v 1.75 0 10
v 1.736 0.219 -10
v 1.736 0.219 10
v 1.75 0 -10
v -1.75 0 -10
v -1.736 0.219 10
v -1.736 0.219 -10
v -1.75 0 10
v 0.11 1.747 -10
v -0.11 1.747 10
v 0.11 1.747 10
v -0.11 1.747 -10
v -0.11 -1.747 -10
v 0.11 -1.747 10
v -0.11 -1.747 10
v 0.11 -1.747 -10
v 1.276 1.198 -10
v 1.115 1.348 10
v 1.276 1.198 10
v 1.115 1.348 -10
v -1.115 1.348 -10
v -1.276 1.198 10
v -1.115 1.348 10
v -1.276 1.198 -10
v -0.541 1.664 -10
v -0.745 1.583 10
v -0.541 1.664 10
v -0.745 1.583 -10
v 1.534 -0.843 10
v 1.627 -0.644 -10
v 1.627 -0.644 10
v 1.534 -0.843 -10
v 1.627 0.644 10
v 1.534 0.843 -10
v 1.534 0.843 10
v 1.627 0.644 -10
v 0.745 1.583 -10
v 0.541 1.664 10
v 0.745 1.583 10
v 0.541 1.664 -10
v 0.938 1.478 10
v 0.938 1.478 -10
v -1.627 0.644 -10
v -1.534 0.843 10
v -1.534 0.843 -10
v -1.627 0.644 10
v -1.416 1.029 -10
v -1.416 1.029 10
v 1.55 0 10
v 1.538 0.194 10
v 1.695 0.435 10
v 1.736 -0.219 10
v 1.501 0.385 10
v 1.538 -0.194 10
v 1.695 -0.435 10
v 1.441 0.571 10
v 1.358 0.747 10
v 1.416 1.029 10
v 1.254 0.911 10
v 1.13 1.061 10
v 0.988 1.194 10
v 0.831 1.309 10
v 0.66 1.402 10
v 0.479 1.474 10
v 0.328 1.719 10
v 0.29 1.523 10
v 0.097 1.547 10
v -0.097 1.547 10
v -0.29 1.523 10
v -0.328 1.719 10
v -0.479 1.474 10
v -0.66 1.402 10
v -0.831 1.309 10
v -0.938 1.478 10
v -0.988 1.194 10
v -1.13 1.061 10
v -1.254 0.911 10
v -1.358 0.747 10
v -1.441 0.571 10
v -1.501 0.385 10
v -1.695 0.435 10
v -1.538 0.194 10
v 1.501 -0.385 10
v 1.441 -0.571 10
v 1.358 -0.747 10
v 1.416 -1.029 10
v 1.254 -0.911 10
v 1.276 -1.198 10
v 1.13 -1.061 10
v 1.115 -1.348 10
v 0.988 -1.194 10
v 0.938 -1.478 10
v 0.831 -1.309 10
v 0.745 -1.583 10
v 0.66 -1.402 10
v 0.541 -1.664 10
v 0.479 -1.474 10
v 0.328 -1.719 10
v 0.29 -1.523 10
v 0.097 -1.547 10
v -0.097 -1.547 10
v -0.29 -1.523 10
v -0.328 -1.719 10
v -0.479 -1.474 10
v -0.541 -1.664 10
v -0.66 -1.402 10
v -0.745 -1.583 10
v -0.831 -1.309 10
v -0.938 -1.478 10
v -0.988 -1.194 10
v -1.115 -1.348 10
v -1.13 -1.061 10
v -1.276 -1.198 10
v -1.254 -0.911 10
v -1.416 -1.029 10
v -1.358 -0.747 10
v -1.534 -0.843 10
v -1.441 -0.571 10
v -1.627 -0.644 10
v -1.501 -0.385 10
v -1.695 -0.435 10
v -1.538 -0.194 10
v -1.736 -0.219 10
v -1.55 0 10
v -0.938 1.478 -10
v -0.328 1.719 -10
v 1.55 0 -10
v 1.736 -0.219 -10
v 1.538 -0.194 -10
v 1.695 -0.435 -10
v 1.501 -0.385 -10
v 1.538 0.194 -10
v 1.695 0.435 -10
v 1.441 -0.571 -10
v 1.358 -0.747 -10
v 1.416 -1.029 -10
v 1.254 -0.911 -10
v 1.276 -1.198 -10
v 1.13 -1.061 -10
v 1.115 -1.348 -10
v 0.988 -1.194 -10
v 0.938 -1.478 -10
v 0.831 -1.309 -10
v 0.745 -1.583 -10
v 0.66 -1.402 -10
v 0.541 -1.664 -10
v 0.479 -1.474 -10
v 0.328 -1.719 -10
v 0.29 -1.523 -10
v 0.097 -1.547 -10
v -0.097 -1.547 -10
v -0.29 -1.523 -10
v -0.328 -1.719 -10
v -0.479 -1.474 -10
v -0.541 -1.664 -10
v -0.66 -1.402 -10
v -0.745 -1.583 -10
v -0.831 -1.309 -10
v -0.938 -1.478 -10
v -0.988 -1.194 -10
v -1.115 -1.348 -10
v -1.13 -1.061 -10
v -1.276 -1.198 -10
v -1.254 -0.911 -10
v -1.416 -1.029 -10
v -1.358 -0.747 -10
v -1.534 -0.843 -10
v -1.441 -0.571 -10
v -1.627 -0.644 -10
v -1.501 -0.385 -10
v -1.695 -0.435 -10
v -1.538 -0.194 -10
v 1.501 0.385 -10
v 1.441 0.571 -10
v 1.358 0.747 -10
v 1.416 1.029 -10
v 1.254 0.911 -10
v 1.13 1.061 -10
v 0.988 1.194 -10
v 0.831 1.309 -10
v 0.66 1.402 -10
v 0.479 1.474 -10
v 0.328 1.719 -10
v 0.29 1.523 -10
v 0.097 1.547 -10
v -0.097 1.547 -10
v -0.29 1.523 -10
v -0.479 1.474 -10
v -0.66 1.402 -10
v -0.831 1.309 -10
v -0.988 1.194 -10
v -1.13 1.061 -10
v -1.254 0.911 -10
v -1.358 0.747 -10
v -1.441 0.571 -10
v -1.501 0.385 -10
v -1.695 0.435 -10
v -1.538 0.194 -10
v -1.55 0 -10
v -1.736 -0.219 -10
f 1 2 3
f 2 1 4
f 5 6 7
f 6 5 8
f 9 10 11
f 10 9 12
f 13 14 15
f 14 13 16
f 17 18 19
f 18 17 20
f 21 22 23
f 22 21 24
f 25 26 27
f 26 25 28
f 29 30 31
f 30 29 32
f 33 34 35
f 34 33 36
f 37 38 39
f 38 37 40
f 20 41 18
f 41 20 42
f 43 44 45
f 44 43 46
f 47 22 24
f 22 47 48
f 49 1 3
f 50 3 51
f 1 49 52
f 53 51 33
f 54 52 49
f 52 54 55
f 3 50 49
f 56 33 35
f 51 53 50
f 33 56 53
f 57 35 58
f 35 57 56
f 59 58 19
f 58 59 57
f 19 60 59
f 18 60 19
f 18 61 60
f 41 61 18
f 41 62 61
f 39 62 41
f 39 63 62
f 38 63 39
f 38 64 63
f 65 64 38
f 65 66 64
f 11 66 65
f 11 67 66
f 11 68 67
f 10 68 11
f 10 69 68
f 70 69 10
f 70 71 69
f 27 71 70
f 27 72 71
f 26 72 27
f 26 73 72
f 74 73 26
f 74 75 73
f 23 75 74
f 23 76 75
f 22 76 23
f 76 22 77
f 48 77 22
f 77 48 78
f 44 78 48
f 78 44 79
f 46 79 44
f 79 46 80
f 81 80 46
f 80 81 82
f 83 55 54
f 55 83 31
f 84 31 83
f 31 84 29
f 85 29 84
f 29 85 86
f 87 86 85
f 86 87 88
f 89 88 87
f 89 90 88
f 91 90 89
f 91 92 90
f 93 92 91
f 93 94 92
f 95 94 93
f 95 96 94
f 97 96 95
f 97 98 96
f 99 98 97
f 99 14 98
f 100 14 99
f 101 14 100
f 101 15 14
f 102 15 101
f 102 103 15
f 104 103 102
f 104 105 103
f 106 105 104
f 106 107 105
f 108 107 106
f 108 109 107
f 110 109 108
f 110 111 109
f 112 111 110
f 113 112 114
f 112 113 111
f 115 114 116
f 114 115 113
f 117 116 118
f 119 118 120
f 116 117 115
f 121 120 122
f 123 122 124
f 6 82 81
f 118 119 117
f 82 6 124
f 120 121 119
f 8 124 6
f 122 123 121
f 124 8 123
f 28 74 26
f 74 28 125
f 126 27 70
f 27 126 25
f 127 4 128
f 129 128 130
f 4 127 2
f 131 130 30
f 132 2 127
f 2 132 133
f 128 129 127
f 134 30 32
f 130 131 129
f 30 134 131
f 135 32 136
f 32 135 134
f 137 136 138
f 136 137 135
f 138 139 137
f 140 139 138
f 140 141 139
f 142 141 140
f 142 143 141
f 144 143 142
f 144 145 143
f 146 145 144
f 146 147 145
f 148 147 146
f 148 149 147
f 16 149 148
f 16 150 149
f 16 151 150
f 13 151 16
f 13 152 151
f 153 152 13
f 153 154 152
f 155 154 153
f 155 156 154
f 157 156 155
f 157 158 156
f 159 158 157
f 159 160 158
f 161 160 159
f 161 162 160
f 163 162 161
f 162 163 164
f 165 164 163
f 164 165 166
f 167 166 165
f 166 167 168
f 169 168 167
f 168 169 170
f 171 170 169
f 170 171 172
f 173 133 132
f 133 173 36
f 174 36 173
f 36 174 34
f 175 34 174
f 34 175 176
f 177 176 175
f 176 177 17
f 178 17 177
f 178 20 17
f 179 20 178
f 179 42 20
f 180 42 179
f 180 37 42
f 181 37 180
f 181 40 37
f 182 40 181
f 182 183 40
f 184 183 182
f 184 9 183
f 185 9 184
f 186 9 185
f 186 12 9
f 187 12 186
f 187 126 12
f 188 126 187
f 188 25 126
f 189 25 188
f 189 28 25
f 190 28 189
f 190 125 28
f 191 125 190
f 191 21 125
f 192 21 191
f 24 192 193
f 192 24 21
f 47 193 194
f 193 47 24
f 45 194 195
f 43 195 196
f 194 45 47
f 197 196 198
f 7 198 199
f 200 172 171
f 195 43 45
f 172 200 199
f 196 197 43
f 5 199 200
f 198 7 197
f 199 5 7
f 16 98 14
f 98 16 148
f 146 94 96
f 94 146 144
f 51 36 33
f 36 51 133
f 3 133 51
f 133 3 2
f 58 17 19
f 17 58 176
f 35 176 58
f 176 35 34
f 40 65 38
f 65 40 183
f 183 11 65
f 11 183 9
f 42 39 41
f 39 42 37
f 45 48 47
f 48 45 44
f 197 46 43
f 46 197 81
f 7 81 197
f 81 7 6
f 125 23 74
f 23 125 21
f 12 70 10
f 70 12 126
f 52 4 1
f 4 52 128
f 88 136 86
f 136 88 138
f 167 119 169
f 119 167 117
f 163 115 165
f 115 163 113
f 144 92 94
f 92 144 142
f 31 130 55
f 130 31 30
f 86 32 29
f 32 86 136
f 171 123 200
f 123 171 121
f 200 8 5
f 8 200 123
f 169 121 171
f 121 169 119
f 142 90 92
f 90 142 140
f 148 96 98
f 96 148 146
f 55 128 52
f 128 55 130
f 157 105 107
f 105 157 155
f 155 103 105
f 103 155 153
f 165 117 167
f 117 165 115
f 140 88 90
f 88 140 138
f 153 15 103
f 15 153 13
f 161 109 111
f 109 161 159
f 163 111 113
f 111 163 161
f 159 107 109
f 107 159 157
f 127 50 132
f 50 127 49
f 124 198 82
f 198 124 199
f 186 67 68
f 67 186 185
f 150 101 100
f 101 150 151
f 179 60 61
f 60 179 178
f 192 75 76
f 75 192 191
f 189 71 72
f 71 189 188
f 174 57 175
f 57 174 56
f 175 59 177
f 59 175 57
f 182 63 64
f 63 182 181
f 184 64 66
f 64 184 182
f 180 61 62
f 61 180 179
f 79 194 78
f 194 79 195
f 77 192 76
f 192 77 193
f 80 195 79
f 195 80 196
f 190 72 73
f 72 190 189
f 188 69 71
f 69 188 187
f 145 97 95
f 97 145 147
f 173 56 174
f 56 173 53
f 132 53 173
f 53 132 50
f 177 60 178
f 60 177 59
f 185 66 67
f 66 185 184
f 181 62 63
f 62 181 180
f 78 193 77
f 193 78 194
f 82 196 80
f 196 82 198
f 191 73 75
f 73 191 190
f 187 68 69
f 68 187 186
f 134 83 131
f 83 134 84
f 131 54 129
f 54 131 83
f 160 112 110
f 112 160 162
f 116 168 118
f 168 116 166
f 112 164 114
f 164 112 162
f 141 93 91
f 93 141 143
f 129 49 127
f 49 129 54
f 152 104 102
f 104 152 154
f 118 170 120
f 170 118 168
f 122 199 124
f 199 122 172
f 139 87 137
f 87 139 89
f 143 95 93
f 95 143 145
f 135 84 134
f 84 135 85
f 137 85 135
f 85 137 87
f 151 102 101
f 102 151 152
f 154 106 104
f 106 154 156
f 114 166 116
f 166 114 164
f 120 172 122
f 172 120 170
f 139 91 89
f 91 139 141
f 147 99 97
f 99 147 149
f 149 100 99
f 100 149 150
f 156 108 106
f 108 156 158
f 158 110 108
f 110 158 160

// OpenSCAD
$fn = 50;


difference() {
	union() {
		translate(v = [0, 0, -10.0000000000]) {
			cylinder(h = 20, r = 1.7500000000);
		}
	}
	union() {
		translate(v = [0, 0, -100.0000000000]) {
			cylinder(h = 200, r = 1.5500000000);
		}
	}
}
